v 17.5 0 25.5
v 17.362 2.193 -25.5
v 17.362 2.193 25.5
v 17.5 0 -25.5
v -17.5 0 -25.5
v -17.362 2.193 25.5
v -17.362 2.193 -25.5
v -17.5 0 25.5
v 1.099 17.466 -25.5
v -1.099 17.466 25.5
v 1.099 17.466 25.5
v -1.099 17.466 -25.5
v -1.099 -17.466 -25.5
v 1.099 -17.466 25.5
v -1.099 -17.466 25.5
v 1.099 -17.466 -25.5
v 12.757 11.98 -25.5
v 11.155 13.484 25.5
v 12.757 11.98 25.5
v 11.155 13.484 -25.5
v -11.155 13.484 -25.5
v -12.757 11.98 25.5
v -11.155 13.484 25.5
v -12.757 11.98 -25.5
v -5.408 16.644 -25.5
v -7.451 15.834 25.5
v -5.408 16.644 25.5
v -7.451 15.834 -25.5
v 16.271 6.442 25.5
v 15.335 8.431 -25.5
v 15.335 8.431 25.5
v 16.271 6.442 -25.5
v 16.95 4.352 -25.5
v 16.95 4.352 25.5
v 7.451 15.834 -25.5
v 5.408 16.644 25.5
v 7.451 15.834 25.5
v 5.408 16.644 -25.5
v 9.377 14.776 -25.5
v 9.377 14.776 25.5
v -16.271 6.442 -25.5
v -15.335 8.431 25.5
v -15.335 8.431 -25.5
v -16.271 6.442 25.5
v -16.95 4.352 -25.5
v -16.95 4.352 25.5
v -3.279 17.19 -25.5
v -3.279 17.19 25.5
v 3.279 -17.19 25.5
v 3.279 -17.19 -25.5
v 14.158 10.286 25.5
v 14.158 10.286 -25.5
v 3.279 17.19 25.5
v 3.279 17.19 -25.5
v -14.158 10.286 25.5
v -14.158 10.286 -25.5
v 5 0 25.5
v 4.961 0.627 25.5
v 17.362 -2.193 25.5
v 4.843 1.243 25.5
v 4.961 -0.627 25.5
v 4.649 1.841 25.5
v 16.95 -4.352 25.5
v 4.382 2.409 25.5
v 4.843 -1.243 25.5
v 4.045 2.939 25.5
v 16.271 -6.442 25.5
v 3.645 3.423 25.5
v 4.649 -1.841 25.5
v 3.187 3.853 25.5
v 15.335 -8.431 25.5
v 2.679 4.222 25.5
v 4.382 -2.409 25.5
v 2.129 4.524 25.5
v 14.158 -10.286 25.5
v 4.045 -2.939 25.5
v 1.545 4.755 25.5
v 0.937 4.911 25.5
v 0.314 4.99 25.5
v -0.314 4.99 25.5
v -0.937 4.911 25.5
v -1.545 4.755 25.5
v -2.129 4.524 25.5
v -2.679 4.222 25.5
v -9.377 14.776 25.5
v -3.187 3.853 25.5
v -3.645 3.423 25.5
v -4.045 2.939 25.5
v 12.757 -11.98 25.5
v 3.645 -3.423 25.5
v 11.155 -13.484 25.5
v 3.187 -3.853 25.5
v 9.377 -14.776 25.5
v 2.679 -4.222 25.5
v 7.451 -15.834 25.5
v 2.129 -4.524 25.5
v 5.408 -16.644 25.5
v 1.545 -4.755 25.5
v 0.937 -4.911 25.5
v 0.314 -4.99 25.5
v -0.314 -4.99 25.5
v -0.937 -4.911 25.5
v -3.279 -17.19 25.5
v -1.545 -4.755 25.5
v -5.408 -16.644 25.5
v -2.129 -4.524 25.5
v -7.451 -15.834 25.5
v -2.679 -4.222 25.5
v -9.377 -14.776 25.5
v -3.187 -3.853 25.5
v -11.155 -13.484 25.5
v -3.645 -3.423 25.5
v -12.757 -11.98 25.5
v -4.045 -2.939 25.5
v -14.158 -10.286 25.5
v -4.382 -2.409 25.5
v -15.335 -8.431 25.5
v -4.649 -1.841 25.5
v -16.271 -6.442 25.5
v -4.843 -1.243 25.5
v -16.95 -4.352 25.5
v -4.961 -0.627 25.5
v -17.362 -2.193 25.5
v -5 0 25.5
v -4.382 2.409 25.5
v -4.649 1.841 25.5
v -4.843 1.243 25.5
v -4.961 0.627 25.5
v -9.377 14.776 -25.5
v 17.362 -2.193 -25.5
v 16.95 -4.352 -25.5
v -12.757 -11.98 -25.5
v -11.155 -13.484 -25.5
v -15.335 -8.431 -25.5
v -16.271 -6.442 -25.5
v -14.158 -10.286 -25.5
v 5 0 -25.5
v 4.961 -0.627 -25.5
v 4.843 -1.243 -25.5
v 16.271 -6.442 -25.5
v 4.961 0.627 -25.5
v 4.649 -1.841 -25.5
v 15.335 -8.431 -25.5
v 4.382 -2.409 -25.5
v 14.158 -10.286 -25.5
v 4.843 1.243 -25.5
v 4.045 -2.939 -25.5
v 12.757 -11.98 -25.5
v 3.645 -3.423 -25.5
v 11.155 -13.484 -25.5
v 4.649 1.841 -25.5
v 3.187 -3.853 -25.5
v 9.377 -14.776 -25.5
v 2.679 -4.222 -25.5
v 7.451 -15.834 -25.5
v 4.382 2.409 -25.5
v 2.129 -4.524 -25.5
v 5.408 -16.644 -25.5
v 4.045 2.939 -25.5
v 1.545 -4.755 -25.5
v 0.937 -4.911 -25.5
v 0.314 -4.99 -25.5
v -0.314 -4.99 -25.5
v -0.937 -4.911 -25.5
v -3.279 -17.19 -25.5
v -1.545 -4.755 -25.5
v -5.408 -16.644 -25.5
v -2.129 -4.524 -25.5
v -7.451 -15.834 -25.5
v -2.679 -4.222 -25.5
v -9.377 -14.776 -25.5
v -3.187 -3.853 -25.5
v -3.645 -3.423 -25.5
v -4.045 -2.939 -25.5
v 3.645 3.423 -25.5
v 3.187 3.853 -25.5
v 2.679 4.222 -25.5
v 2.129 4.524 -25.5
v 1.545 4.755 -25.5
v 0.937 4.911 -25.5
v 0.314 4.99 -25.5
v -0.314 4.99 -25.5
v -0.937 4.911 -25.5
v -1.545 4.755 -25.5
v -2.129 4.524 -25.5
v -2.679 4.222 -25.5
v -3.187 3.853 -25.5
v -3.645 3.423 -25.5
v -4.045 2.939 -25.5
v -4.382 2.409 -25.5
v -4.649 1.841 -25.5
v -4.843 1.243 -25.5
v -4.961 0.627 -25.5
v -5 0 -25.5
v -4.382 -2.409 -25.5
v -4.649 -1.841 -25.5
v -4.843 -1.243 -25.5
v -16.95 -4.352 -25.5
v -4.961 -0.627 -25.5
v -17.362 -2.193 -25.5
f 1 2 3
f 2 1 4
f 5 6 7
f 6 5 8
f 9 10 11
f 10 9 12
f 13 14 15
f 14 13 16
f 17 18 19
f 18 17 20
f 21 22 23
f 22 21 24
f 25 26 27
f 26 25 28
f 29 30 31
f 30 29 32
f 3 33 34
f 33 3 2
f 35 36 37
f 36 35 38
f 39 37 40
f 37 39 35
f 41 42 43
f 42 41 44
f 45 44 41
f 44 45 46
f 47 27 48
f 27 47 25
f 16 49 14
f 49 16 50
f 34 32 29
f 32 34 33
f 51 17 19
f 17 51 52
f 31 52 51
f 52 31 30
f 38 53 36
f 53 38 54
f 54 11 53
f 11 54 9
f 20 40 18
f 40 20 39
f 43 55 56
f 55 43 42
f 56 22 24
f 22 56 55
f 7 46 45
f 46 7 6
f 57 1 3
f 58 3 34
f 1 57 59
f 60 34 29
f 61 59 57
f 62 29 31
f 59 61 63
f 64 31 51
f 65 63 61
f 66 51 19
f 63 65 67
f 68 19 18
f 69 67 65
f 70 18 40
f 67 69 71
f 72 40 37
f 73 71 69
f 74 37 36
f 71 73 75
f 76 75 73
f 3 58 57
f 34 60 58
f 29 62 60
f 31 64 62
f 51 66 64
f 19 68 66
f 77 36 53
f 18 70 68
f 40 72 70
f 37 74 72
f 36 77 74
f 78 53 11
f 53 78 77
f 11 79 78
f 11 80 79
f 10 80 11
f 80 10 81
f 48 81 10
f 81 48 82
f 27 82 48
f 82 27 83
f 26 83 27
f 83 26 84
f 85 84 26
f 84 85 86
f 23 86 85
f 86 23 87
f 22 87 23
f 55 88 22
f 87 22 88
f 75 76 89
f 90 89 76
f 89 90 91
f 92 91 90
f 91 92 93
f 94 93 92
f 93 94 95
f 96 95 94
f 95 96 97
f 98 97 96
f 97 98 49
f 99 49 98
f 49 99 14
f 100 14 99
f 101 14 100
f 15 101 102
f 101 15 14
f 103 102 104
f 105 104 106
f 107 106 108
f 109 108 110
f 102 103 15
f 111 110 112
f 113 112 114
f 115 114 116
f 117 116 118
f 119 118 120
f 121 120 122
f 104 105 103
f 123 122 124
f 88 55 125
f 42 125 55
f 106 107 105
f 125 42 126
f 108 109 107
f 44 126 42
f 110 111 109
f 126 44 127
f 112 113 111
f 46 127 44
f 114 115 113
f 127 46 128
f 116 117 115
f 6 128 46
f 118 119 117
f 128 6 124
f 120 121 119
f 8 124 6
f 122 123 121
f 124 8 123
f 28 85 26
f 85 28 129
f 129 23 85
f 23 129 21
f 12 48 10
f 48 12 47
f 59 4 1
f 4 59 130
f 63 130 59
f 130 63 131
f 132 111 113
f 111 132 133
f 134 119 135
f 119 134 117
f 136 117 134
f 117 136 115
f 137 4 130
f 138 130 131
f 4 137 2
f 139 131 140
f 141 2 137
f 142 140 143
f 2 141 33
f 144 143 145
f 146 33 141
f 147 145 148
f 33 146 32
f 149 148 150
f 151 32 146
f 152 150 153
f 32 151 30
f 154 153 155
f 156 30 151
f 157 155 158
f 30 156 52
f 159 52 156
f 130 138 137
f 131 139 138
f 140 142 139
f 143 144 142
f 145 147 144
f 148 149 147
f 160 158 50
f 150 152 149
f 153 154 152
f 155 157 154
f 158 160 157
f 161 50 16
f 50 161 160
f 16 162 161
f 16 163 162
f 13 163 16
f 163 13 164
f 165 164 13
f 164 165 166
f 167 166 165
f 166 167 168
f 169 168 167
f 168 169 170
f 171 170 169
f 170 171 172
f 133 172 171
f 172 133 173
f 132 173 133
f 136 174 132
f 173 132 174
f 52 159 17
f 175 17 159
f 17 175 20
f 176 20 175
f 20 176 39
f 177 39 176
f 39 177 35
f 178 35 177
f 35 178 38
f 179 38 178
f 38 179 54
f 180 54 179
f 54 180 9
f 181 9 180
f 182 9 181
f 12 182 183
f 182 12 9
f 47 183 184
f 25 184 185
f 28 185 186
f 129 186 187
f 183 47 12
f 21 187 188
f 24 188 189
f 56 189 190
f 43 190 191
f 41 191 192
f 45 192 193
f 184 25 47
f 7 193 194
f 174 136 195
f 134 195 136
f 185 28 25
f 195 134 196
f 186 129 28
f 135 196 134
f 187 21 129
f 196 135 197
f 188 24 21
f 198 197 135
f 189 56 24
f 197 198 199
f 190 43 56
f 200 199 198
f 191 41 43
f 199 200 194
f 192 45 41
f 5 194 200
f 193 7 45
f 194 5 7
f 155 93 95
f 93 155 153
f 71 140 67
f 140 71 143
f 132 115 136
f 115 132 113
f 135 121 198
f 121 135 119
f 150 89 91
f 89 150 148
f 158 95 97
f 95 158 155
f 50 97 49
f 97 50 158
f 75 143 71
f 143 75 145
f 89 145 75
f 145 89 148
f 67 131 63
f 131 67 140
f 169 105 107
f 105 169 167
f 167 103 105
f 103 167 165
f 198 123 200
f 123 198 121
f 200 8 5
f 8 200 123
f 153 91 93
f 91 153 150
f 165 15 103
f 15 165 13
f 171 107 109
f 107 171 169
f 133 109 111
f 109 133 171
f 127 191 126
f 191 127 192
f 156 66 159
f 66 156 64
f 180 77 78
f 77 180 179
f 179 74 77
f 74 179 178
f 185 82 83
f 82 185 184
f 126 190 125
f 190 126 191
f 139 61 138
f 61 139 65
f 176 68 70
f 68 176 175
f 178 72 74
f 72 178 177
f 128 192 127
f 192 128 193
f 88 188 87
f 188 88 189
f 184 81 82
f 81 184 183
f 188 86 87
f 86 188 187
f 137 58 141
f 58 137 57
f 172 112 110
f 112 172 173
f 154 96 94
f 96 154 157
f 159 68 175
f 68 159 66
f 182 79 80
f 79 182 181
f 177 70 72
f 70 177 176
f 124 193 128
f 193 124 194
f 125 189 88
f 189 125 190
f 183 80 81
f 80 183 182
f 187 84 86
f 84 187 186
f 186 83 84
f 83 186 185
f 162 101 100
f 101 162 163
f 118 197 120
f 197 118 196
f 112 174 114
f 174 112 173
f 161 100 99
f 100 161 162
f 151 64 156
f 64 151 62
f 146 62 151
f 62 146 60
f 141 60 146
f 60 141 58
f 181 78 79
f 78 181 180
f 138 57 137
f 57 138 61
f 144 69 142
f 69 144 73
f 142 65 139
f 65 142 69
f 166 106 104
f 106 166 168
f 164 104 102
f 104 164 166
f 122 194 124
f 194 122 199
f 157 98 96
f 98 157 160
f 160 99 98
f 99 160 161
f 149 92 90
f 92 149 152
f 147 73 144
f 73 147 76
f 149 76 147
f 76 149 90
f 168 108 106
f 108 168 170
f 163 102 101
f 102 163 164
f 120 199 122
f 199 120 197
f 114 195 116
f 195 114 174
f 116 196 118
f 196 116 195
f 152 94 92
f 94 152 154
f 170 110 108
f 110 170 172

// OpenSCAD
$fn = 50;


difference() {
	union() {
		translate(v = [0, 0, -25.5000000000]) {
			cylinder(h = 51, r = 17.5000000000);
		}
	}
	union() {
		translate(v = [0, 0, -100.0000000000]) {
			cylinder(h = 200, r = 5);
		}
	}
}
